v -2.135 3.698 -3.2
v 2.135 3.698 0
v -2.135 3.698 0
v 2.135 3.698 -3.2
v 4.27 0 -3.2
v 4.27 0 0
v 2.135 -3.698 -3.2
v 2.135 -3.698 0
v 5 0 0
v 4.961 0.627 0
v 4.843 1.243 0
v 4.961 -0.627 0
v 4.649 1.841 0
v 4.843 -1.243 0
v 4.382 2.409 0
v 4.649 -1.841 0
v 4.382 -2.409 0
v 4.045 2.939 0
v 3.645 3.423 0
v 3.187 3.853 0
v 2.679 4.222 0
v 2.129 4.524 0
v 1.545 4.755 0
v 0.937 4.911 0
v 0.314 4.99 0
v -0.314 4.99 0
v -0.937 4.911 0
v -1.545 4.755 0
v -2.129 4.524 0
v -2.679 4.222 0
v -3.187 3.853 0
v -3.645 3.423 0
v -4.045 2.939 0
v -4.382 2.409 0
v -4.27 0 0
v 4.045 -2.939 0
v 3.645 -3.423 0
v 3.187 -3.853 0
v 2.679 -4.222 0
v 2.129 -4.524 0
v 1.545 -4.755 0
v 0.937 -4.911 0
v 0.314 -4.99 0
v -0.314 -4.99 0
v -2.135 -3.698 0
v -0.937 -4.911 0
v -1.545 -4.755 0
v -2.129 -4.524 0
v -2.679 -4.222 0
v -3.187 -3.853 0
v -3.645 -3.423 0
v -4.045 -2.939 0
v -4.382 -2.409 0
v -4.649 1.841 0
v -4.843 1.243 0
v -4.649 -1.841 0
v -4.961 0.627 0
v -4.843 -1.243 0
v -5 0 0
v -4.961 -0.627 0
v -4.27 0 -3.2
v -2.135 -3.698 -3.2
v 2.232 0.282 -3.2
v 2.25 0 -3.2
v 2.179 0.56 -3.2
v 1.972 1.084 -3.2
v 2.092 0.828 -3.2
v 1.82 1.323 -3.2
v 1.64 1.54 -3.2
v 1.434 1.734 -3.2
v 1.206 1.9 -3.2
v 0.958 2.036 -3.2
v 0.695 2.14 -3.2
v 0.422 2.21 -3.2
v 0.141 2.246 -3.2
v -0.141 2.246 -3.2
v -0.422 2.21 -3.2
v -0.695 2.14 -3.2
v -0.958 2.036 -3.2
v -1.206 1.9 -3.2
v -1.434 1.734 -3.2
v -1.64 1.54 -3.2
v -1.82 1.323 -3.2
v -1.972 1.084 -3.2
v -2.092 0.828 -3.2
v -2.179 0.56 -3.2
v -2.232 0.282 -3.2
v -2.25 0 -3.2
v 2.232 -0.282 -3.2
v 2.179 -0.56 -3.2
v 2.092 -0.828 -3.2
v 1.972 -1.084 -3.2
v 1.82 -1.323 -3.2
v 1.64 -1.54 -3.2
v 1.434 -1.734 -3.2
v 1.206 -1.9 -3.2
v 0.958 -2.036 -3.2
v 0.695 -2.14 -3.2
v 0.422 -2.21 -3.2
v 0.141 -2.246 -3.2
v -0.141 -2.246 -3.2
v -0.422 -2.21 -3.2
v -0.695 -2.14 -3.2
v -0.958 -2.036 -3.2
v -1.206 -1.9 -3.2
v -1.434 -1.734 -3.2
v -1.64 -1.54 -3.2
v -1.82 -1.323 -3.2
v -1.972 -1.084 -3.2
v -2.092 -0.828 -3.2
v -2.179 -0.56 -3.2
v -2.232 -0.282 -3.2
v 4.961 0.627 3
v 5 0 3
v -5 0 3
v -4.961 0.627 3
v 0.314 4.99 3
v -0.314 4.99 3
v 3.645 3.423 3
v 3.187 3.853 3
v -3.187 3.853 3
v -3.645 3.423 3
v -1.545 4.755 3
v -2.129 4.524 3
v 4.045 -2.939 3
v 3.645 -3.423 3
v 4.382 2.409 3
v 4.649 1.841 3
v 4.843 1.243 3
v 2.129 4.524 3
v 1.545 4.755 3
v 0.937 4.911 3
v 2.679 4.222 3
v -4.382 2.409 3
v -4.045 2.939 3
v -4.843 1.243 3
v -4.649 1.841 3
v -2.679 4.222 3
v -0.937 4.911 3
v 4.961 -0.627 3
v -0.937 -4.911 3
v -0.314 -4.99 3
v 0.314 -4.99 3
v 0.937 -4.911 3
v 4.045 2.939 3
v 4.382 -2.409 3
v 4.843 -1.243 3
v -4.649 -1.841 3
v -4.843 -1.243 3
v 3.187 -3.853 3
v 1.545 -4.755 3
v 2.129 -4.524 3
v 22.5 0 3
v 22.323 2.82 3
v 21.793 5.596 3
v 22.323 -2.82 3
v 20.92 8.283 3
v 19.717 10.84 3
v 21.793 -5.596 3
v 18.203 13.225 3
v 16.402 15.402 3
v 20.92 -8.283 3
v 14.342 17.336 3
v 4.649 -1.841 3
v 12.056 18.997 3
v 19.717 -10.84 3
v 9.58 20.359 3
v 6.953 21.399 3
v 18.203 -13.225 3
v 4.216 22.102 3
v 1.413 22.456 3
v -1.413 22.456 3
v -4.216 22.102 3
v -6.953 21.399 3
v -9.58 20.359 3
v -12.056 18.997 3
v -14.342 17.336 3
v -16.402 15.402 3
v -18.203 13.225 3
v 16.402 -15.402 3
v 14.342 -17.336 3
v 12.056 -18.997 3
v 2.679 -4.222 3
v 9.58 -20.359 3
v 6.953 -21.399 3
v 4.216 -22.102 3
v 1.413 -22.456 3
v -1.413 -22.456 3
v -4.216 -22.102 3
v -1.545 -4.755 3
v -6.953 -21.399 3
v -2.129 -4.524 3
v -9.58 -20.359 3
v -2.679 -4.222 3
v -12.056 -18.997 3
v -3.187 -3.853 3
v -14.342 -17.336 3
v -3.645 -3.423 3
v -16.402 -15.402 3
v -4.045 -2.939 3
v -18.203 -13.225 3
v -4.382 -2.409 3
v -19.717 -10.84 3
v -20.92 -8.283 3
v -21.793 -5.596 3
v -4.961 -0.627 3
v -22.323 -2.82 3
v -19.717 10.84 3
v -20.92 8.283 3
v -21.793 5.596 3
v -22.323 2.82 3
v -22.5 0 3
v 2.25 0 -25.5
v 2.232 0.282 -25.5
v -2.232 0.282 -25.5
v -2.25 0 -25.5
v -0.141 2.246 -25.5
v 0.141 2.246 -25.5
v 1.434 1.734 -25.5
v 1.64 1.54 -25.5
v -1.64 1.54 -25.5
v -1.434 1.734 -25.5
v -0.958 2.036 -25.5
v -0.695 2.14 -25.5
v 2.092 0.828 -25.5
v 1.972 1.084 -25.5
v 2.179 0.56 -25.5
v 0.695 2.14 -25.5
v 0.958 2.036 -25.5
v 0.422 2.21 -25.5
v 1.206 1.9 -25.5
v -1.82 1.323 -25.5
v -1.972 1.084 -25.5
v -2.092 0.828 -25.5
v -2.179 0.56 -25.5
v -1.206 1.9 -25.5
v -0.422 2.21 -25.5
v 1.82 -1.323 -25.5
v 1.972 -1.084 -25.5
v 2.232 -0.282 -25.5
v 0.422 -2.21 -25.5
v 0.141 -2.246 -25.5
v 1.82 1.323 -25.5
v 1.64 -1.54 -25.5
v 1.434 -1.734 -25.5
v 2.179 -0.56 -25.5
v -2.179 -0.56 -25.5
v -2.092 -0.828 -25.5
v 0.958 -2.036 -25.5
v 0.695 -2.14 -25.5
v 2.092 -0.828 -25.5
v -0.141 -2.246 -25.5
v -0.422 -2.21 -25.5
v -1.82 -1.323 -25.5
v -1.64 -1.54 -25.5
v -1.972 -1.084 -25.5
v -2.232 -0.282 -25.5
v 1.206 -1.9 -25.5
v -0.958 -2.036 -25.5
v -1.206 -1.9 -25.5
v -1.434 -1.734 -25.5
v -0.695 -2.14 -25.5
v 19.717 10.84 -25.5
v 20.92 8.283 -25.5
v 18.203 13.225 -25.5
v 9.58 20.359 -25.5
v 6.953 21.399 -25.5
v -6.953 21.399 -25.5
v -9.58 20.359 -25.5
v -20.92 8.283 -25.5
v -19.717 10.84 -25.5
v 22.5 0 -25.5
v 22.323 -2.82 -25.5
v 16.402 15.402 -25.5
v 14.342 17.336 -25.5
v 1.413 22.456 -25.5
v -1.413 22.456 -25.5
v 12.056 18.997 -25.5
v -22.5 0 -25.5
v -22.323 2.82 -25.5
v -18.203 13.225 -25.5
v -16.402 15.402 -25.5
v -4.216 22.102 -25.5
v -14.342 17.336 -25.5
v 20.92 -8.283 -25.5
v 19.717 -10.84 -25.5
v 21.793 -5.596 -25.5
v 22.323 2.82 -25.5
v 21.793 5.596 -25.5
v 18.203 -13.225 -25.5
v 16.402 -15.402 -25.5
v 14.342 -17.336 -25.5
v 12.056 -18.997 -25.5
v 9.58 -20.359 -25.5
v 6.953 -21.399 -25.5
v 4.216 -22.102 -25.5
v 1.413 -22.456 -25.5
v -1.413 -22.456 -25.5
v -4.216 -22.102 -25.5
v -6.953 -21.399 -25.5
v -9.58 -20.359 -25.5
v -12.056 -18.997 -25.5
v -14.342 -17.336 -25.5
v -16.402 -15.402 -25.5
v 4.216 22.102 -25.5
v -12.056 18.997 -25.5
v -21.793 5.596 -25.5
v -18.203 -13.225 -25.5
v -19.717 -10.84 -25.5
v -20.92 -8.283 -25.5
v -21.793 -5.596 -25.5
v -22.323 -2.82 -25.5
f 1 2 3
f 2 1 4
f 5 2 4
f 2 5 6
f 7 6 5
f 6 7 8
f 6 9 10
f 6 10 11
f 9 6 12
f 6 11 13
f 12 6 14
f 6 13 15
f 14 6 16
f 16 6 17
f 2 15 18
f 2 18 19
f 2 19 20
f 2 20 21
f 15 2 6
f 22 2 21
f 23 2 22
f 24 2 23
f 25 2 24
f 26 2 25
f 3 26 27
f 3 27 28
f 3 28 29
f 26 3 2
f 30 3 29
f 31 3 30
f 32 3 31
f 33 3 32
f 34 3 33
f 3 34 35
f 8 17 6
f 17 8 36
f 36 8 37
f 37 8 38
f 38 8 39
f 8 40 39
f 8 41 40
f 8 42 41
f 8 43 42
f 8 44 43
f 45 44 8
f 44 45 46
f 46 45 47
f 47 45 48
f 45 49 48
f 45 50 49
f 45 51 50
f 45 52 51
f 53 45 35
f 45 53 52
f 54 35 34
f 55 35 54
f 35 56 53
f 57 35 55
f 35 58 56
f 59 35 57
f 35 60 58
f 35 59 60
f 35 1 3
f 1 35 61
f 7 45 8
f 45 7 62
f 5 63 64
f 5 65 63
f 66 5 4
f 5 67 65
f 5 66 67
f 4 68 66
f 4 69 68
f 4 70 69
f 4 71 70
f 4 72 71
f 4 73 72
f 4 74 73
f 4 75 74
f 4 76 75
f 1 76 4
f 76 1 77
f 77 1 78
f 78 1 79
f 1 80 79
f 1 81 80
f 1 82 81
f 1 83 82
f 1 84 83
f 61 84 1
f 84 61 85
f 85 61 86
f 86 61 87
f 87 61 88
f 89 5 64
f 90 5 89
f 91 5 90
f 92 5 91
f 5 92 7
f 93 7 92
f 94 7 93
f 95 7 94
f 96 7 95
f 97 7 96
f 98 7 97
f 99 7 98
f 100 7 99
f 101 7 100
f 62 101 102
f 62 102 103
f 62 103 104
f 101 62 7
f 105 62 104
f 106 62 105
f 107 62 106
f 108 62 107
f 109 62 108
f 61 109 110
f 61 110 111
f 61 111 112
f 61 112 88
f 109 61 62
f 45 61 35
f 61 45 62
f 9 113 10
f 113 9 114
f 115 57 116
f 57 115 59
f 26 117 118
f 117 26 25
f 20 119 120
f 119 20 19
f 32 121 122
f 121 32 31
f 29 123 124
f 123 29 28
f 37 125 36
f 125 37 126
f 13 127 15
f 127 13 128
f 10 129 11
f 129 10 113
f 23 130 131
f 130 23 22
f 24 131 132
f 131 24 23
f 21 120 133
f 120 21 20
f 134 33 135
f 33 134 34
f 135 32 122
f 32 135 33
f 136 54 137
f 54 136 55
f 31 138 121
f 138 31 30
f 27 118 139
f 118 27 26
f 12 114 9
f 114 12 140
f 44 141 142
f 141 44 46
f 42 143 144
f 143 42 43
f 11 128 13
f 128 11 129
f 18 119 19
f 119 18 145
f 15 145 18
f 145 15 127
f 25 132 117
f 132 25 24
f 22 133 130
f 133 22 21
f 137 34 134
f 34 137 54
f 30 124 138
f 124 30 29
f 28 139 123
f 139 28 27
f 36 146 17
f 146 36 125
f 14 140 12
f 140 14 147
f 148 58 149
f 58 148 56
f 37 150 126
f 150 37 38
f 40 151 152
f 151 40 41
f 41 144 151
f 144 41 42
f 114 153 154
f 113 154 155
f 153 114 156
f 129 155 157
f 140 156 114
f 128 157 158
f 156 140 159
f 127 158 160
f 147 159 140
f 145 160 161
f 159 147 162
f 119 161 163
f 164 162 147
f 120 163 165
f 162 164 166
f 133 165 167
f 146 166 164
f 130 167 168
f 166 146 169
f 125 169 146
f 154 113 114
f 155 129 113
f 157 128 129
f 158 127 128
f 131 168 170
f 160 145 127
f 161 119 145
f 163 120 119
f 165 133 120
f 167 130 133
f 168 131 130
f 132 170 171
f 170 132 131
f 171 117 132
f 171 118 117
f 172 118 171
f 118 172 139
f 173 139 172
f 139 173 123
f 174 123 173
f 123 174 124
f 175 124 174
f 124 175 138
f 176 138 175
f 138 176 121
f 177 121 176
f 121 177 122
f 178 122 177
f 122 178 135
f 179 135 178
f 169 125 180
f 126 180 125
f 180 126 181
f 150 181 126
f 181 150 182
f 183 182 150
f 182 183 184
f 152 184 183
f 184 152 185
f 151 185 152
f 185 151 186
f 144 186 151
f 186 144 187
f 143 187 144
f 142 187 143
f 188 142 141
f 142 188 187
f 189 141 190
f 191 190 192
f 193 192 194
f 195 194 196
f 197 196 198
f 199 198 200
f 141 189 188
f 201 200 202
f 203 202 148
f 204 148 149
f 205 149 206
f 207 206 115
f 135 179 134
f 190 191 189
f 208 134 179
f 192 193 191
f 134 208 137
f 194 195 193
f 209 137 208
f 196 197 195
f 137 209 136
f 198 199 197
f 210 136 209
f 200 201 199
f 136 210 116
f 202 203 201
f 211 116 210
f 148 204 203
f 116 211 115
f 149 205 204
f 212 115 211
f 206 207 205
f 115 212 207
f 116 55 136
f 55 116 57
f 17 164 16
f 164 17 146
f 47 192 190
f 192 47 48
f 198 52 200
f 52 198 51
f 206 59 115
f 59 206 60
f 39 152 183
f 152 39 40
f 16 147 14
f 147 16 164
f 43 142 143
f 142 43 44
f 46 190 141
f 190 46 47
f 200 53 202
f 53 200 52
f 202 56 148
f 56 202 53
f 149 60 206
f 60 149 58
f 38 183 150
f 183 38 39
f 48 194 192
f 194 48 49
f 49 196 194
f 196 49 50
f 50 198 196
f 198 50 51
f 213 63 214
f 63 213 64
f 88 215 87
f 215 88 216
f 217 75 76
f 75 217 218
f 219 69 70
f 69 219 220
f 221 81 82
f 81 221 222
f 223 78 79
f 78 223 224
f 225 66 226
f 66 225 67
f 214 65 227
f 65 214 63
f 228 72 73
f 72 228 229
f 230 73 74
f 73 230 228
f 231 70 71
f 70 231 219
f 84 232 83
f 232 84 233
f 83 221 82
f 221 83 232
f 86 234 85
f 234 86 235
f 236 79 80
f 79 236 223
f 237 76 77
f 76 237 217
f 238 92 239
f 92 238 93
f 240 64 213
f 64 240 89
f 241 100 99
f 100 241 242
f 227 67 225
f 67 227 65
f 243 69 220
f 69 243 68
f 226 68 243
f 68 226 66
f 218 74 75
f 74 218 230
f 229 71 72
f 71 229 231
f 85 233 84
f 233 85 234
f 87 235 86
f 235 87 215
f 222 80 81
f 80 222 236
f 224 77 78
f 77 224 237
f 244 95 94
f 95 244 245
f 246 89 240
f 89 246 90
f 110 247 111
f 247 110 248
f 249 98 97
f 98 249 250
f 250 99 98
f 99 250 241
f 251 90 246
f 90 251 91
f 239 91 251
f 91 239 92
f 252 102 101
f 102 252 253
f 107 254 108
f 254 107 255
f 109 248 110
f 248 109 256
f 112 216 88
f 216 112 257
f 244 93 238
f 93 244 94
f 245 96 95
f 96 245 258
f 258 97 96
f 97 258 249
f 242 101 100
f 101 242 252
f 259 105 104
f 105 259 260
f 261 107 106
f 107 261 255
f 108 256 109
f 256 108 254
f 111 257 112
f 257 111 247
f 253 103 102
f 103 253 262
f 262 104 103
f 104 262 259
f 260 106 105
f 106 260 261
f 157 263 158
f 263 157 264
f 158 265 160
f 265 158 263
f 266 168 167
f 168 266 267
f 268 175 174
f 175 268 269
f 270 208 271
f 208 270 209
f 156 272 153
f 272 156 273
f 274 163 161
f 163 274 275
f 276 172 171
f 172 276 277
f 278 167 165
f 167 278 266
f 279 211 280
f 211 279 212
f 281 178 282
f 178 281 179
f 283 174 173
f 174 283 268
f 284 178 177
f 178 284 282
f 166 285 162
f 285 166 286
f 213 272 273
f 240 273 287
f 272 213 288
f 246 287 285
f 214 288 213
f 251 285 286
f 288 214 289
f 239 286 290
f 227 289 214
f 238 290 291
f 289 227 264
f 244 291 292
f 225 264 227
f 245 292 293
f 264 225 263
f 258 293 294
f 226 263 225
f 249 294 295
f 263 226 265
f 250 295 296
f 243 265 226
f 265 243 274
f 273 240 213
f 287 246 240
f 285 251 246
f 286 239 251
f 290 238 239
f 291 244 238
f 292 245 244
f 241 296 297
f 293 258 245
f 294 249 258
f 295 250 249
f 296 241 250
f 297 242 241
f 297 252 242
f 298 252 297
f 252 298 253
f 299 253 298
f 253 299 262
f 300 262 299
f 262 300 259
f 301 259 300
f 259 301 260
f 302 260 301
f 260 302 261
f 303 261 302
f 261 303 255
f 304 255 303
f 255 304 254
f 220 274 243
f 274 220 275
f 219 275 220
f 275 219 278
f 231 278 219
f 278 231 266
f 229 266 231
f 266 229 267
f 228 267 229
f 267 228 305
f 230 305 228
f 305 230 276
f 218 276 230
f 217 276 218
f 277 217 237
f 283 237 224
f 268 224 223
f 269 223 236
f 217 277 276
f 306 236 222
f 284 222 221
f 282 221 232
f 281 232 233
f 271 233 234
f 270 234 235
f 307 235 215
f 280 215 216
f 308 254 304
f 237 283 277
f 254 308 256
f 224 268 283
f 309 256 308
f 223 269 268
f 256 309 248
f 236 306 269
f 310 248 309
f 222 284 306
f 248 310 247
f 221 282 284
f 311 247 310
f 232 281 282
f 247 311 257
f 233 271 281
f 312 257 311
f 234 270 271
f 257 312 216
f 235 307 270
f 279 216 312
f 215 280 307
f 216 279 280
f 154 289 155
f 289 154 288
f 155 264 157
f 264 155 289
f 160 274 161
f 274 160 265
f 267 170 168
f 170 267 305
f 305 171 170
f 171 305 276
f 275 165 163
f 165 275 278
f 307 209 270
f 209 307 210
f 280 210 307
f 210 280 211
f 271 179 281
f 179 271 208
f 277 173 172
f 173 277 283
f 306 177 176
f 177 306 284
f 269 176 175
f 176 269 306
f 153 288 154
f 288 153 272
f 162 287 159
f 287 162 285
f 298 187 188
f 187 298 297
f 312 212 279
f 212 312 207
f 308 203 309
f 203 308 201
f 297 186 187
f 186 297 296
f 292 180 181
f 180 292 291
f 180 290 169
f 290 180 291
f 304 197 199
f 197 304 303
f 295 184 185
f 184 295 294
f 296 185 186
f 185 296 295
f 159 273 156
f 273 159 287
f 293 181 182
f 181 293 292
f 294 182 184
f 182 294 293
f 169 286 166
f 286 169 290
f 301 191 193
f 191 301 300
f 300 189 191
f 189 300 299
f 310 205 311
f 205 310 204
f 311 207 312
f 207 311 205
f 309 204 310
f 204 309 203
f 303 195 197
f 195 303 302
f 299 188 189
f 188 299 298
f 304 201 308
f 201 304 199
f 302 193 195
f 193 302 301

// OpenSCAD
$fn = 50;

difference() {
	union() {
		translate(v = [0, 0, -25.5]) {
			cylinder(h = 28.5, r = 22.5);
		}
	}
	union() {
		translate(v = [0, 0, 0]) {
			rotate(a = [0, 0, 0]) {
				difference() {
					union() {
						translate(v = [0, 0, -3.2]) {
							linear_extrude(height = 3.2) {
								polygon(points = [[4.2698, 0.0], [2.1349000000000005, 3.697755269078796], [-2.134899999999999, 3.6977552690787965], [-4.2698, 5.228996902999369e-16], [-2.134900000000002, -3.6977552690787956], [2.1348999999999974, -3.697755269078798]]);
							}
						}
					}
					union();
				}
			}
		}
		#cylinder(h = 3, r = 5.0);
		#translate(v = [0, 0, -100.0]) {
			cylinder(h = 200, r = 2.25);
		}
	}
}
